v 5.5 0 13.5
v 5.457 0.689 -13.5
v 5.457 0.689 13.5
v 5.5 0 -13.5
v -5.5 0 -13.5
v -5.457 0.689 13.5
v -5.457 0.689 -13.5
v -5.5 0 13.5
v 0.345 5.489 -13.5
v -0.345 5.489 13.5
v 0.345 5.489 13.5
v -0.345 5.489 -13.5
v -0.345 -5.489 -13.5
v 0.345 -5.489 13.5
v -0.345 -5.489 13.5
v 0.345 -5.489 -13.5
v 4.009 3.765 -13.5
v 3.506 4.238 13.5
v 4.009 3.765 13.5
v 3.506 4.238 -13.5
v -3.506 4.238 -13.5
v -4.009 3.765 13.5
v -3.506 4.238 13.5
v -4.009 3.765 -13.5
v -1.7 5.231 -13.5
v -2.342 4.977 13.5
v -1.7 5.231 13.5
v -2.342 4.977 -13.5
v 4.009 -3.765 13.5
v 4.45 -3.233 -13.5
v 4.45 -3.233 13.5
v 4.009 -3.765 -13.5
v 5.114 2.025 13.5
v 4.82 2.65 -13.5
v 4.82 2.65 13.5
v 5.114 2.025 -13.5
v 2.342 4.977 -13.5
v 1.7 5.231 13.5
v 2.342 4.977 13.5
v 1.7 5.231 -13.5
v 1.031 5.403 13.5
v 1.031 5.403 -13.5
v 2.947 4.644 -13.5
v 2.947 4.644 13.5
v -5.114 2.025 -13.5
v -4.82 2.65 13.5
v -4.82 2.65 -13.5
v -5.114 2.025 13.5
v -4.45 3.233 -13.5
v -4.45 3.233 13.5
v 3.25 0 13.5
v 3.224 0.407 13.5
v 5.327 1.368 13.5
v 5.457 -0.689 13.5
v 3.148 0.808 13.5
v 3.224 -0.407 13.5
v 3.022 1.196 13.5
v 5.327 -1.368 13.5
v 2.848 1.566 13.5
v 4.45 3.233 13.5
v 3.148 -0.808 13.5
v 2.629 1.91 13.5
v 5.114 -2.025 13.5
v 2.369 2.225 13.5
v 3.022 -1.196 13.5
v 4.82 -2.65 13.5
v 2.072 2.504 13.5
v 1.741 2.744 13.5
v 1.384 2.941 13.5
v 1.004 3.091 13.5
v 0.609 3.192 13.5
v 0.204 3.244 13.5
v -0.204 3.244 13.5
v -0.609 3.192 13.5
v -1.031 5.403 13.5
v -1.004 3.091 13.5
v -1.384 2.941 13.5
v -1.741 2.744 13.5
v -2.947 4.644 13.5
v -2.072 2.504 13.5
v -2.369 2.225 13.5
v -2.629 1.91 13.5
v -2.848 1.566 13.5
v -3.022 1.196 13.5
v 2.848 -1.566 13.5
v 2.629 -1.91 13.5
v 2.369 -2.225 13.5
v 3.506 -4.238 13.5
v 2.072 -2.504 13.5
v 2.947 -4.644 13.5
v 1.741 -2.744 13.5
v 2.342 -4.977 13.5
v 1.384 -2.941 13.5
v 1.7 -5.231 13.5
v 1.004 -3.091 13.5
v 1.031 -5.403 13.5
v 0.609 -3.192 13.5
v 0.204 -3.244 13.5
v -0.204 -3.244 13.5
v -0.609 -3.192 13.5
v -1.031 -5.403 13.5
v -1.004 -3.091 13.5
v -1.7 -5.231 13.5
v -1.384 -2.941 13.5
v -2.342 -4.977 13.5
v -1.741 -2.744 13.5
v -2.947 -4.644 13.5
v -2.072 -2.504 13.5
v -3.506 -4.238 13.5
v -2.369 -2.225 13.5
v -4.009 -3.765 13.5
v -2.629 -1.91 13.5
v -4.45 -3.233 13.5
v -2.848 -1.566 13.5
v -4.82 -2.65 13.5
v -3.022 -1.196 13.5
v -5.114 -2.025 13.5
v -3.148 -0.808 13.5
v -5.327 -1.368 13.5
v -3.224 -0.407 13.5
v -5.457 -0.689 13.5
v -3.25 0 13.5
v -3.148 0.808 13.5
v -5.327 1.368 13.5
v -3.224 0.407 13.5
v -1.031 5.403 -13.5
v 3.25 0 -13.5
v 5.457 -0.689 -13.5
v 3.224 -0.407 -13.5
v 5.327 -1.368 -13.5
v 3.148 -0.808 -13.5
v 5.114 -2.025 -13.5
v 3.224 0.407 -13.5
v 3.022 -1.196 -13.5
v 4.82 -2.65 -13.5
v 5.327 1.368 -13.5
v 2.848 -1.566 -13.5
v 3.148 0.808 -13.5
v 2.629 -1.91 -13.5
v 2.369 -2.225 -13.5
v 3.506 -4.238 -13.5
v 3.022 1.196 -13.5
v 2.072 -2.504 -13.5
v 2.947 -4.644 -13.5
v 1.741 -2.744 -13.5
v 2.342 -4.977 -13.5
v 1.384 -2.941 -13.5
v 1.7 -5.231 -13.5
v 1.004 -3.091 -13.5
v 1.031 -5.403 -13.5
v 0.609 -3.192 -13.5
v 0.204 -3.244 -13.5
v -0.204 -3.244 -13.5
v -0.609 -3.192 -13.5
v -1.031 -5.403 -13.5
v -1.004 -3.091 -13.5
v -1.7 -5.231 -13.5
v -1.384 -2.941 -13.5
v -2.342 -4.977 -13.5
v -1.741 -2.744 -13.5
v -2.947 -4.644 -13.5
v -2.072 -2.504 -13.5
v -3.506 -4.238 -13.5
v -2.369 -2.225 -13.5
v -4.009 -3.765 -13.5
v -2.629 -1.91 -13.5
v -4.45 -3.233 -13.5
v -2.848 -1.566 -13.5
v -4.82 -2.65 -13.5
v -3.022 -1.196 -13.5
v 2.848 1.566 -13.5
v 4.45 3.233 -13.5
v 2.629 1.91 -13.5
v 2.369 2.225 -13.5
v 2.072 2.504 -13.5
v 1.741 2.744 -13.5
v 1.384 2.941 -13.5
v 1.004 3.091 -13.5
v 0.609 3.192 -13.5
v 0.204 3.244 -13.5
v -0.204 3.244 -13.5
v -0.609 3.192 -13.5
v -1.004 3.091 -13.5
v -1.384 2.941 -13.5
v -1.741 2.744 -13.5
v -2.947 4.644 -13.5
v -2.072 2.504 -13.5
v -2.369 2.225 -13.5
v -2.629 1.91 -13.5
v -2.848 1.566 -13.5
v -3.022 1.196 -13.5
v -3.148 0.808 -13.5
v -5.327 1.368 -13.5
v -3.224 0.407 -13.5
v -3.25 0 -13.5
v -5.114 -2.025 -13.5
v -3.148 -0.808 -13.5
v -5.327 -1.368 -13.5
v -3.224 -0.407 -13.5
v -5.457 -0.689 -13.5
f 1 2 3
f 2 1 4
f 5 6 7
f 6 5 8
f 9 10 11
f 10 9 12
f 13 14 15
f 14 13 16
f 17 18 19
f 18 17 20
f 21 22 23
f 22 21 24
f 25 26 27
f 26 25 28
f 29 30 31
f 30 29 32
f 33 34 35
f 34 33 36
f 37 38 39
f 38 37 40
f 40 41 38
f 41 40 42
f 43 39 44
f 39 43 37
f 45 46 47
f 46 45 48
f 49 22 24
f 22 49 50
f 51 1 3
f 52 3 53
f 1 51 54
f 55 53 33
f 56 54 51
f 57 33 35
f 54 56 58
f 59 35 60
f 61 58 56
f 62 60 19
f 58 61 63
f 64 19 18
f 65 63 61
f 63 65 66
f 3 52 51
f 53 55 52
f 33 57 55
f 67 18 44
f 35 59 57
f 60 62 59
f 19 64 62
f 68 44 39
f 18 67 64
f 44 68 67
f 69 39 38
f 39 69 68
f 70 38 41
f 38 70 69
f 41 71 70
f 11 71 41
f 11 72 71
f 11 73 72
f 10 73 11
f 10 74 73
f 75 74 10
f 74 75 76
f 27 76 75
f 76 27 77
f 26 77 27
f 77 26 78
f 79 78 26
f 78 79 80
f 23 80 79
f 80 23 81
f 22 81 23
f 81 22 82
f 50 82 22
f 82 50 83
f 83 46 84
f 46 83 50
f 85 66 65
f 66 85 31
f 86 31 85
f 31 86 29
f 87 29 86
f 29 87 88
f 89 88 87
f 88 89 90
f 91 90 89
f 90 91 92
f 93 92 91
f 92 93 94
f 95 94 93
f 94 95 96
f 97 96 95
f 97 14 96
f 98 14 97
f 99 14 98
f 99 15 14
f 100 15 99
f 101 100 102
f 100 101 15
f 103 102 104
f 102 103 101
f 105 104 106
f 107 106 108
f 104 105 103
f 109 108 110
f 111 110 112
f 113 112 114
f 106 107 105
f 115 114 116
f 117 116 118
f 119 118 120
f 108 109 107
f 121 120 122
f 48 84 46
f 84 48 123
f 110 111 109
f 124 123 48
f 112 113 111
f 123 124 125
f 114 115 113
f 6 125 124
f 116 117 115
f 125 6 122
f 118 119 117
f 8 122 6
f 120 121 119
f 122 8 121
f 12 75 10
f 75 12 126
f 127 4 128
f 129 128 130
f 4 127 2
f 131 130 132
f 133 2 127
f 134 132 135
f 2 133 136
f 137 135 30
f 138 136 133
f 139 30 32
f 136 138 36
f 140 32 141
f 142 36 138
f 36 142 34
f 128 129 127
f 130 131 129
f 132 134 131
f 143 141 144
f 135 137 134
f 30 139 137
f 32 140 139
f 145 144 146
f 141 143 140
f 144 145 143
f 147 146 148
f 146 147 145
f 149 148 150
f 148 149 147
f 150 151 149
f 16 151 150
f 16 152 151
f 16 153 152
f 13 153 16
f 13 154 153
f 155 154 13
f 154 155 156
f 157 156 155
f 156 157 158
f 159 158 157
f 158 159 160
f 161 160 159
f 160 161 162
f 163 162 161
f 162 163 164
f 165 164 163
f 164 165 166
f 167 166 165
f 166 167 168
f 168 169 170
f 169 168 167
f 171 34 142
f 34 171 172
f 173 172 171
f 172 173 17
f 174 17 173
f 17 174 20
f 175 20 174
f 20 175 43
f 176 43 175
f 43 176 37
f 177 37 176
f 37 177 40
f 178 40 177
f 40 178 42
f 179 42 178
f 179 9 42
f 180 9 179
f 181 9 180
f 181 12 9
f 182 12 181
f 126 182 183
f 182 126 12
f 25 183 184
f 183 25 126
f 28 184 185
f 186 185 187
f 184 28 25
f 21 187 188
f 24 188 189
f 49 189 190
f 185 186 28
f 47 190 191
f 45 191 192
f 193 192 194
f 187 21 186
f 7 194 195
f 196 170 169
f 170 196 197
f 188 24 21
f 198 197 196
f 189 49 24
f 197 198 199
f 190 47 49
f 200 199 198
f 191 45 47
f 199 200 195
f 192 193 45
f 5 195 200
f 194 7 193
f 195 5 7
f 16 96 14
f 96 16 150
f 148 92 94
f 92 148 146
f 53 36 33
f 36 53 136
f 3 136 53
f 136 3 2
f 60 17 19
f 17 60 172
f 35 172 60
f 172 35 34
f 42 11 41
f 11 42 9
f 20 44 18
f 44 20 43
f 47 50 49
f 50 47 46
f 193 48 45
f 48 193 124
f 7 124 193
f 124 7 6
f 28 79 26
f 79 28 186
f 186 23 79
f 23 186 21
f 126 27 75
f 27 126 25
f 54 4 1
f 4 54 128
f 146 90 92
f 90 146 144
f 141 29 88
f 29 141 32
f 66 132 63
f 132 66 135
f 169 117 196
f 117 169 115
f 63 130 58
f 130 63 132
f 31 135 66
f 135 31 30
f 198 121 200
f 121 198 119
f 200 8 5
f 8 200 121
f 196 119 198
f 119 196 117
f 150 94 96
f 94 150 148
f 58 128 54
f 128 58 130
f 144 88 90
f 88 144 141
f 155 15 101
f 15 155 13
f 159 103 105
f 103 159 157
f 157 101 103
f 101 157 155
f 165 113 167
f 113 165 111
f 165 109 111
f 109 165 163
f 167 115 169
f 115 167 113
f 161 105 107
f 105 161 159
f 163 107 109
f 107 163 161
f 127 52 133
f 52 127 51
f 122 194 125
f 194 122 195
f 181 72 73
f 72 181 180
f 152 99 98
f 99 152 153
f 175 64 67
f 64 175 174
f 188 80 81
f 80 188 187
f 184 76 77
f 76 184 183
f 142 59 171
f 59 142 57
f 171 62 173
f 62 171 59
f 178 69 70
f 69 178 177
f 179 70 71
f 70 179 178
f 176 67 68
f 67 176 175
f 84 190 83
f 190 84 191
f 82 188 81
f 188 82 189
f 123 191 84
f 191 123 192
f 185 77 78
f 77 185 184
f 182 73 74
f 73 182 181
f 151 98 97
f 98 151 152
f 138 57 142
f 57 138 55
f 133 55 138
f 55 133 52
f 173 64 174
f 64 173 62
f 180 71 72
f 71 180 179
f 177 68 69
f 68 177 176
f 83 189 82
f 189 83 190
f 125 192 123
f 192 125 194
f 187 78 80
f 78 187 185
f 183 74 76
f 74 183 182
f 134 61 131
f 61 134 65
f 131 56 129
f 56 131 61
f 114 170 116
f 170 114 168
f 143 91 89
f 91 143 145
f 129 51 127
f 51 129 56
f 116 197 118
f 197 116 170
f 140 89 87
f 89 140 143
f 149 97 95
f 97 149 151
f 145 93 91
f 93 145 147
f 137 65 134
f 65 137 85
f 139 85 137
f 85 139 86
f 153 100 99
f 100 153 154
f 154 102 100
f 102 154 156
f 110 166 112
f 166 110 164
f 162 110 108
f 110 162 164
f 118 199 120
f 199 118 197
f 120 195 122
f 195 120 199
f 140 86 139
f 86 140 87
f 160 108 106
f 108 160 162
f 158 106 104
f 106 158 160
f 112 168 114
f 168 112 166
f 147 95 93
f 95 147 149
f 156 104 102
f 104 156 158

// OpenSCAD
$fn = 50;


difference() {
	union() {
		translate(v = [0, 0, -13.5000000000]) {
			cylinder(h = 27, r = 5.5000000000);
		}
	}
	union() {
		translate(v = [0, 0, -100.0000000000]) {
			cylinder(h = 200, r = 3.2500000000);
		}
	}
}
